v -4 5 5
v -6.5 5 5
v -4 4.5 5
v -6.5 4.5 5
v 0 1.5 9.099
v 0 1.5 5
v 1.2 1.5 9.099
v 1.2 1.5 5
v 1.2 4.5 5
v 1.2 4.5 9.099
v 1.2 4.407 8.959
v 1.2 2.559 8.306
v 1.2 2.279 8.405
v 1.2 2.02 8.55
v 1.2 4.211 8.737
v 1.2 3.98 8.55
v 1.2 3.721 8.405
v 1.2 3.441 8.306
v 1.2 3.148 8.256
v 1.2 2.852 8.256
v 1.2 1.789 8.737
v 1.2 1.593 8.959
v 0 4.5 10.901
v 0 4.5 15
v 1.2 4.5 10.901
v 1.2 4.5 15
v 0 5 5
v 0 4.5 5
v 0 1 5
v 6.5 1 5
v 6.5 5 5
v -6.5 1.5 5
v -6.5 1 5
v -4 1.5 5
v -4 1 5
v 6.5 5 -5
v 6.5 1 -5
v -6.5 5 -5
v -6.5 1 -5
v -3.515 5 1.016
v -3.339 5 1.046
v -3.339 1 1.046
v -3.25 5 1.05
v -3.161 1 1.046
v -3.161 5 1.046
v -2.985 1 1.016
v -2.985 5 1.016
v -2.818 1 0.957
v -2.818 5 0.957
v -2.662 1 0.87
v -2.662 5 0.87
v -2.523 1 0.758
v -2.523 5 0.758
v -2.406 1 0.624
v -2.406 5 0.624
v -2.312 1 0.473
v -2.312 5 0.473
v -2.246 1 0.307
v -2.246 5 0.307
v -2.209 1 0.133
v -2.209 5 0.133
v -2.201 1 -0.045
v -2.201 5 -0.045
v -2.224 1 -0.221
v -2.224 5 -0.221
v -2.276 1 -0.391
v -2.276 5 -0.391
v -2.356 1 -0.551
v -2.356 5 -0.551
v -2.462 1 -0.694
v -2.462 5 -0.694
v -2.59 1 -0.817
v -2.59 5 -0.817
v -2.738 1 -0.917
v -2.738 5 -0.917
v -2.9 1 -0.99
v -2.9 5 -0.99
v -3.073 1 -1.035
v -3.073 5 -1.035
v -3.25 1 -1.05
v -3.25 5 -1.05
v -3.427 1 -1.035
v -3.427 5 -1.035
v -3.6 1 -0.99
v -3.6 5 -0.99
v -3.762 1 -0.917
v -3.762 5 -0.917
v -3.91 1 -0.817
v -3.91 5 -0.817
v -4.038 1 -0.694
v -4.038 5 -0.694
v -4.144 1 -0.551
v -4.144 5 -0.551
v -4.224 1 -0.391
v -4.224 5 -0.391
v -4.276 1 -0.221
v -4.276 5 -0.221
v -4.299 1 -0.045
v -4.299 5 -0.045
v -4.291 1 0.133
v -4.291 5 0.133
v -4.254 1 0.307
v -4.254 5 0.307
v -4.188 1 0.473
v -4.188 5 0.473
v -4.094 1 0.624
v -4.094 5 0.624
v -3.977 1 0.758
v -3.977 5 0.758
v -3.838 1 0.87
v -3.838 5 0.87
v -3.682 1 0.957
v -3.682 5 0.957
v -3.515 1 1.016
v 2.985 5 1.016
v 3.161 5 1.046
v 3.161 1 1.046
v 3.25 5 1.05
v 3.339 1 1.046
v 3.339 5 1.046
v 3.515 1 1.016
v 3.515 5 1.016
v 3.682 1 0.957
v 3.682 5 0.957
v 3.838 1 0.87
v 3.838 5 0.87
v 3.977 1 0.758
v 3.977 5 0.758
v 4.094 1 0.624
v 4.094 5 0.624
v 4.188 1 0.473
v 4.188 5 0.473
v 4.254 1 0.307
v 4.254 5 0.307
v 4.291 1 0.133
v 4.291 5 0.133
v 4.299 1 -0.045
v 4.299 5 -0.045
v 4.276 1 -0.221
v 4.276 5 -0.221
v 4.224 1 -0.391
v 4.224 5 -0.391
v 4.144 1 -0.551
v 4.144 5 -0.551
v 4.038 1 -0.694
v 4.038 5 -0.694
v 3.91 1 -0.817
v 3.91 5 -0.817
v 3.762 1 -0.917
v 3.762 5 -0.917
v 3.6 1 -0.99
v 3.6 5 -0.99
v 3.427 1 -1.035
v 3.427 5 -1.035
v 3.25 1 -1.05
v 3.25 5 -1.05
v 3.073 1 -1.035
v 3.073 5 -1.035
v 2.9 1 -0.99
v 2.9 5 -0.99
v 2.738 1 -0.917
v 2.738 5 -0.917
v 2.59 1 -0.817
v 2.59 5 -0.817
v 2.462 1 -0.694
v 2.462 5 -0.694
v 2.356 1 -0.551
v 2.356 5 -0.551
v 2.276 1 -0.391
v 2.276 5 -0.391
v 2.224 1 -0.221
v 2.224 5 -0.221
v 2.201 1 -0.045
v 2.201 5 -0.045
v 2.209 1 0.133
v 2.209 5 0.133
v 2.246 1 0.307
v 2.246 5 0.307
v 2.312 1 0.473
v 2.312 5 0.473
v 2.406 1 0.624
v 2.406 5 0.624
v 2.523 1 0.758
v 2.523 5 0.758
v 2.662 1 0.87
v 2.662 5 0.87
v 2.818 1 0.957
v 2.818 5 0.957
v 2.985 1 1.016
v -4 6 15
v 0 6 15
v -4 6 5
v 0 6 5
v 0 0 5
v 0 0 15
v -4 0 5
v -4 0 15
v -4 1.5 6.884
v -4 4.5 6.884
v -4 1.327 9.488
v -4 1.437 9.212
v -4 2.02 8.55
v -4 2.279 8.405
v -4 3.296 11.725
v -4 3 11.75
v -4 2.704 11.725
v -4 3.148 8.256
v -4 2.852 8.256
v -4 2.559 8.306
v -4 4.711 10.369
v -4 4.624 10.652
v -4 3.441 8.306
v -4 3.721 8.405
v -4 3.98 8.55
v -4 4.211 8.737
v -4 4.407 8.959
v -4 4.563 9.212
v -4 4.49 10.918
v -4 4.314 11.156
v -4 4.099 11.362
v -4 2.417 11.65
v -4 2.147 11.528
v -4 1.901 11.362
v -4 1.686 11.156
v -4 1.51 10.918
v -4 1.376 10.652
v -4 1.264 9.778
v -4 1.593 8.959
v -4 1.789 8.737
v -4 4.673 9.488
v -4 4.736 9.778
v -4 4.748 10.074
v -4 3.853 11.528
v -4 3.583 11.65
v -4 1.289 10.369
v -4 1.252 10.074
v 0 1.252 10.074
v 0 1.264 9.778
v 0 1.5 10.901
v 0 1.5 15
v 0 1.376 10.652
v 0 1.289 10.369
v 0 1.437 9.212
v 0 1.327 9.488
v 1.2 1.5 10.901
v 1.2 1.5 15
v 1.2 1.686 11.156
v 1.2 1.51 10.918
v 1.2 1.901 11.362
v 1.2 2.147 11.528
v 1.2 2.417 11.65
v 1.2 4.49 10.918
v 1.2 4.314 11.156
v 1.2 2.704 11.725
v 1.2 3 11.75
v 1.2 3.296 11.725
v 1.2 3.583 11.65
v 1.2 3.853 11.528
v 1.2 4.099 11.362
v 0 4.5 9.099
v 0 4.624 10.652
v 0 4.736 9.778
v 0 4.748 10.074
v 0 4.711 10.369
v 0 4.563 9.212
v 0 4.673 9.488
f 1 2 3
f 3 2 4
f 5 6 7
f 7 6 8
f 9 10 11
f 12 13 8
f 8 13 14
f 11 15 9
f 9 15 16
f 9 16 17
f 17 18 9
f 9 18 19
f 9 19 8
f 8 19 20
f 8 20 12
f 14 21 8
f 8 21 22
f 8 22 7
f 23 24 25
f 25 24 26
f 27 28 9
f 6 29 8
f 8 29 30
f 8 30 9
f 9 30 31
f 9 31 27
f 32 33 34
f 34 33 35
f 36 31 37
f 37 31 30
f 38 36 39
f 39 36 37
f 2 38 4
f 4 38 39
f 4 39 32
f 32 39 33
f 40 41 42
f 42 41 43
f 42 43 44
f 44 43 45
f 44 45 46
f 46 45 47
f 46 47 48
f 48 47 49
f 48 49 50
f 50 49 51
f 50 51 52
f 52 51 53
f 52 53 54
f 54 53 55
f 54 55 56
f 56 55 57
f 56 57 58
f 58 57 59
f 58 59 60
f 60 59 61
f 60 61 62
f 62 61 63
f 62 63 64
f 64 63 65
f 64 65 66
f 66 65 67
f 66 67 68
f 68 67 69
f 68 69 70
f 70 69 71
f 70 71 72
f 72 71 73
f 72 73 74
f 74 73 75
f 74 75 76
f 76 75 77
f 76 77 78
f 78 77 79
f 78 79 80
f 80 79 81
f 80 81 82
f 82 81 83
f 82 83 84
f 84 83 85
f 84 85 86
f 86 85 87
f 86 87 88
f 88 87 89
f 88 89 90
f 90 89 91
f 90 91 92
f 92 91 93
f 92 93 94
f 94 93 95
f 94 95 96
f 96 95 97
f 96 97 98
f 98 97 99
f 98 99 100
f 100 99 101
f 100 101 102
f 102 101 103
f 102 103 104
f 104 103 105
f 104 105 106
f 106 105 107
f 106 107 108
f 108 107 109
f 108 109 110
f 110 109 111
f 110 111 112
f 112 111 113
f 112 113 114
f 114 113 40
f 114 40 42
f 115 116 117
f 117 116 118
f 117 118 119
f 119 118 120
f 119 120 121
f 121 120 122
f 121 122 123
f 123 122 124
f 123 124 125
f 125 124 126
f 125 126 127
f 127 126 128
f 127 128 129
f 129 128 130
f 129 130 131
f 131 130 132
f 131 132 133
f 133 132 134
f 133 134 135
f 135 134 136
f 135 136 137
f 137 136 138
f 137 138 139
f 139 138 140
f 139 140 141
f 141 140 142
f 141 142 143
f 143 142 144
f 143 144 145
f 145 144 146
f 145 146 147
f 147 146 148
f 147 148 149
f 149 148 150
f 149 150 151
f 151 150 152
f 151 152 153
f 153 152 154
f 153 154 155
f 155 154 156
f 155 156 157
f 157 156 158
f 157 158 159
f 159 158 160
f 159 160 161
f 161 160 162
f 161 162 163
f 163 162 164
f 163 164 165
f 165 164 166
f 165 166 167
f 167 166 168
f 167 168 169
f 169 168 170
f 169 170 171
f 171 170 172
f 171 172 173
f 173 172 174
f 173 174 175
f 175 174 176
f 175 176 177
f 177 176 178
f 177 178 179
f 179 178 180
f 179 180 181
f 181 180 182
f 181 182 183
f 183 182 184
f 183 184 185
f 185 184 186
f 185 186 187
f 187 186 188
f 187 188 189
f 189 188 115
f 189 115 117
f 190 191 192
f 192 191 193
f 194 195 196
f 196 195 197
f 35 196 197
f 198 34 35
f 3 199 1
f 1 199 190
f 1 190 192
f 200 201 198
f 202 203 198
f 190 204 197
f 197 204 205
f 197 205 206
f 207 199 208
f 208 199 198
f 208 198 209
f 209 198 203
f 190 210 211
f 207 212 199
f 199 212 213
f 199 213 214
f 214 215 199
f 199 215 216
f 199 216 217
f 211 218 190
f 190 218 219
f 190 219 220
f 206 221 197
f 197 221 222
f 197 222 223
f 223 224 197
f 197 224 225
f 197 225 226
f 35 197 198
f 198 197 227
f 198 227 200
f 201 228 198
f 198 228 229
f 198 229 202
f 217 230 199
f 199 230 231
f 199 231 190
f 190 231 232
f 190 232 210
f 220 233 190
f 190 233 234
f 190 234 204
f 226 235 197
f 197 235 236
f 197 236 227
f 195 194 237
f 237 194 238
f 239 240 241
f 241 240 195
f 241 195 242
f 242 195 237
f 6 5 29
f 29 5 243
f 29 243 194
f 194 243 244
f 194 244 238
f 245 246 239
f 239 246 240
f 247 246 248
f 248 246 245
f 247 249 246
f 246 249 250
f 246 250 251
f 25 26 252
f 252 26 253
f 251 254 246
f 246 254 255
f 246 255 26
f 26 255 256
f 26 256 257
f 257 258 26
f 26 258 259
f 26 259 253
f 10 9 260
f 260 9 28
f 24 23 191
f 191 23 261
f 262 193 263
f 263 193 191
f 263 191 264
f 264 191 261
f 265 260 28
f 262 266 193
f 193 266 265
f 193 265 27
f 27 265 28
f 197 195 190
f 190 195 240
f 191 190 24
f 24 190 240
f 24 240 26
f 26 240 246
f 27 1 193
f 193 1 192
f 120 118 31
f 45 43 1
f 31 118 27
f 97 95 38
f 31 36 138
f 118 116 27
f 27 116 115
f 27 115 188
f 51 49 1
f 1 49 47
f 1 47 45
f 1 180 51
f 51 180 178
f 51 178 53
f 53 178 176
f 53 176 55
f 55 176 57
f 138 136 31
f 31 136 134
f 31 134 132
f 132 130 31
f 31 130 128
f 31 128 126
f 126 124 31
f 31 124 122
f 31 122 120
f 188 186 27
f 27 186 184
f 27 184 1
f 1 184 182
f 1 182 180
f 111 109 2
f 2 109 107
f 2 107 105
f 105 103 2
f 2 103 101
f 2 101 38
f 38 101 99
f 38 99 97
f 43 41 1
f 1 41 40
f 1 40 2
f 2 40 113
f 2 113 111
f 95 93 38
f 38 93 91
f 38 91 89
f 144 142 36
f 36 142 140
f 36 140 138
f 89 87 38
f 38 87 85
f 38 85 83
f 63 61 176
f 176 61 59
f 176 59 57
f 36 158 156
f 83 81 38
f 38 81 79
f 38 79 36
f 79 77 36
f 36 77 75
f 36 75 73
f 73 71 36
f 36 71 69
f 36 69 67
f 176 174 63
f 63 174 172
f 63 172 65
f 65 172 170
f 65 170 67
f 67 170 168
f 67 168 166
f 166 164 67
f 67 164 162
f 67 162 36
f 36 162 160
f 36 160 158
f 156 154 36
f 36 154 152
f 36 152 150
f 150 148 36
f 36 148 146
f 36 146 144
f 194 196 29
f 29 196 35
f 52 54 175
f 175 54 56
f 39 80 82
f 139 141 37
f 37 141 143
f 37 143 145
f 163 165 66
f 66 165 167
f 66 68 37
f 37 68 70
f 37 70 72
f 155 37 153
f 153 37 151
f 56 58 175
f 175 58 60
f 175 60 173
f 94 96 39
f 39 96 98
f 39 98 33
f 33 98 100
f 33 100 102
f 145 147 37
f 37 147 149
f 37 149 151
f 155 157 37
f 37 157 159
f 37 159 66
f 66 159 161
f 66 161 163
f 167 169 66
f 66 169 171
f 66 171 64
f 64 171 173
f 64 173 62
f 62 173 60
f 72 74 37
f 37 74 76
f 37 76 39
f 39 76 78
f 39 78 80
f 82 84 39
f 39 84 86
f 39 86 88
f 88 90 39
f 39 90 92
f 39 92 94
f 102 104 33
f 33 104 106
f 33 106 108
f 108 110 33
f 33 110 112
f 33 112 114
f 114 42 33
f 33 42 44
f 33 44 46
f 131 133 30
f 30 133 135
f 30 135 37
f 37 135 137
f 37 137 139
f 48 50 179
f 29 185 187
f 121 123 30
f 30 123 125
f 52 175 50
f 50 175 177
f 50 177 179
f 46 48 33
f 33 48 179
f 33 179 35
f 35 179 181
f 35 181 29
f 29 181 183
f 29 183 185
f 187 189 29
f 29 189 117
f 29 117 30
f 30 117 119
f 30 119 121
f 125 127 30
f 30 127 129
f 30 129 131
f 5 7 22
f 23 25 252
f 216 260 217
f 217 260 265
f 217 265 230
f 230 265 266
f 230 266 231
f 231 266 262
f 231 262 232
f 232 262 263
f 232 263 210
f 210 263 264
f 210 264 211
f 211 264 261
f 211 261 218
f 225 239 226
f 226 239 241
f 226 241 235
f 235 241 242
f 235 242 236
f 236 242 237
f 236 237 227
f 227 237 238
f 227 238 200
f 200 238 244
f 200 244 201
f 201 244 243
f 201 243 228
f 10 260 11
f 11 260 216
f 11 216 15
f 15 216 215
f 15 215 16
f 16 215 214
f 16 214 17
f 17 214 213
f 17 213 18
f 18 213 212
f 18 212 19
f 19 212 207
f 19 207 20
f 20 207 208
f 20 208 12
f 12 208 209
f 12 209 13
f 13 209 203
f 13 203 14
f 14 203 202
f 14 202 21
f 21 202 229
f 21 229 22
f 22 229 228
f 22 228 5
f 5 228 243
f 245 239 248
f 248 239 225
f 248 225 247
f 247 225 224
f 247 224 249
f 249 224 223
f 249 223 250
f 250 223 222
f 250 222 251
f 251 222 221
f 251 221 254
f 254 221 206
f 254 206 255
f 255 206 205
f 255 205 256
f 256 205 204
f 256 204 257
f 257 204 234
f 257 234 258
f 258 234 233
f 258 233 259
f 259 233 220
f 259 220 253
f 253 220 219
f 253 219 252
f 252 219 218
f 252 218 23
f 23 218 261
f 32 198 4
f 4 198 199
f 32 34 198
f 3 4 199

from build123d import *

# Parameters (mm, degrees)
SKETCH_2_W          = 13
SKETCH_2_H          = 10
SKETCH_2_R          = 1.05
EXTRUDE_1_DEPTH     = 6
EXTRUDE_2_DEPTH     = 10
SKETCH_4_W          = 13
SKETCH_4_H          = 10
CUT_EXTRUDE_1_DEPTH = 1
SKETCH_5_W          = 13
SKETCH_5_H          = 10
CUT_EXTRUDE_2_DEPTH = 1
SKETCH_6_R          = 1.75
CUT_EXTRUDE_3_DEPTH = 20.267848868
RIB_1_REACH         = 18.956
SKETCH_7_WALL_W     = 39.23500661
SKETCH_7_WALL_H     = 3


with BuildPart() as part:
    # 草图2 → 凸台-拉伸1 (new body)
    with BuildSketch(Plane(origin=(0, 0, 0), x_dir=(1, 0, 0), z_dir=(0, 1, 0))):
        Rectangle(SKETCH_2_W, SKETCH_2_H)
        with Locations(Location((-3.25, 0, 0), (0, 0, 270))):
            Circle(SKETCH_2_R, mode=Mode.SUBTRACT)
        with Locations(Location((3.25, 0, 0), (0, 0, 270))):
            Circle(SKETCH_2_R, mode=Mode.SUBTRACT)
    extrude(amount=EXTRUDE_1_DEPTH)

    # 草图3 → 凸台-拉伸2 (add)
    with BuildSketch(Plane.XY.offset(5)):
        Polygon((0, 6), (0, 4.5), (1.2, 4.5), (1.2, 1.5), (0, 1.5), (0, 0), (-4, 0), (-4, 6), align=None)
    extrude(amount=EXTRUDE_2_DEPTH)

    # 草图4 → 切除-拉伸1 (cut)
    with BuildSketch(Plane(origin=(0, 6, 0), x_dir=(1, 0, 0), z_dir=(0, 1, 0))):
        Rectangle(SKETCH_4_W, SKETCH_4_H)
    extrude(amount=-CUT_EXTRUDE_1_DEPTH, mode=Mode.SUBTRACT)

    # 草图5 → 切除-拉伸2 (cut)
    with BuildSketch(Plane.XZ):
        Rectangle(SKETCH_5_W, SKETCH_5_H)
    extrude(amount=-CUT_EXTRUDE_2_DEPTH, mode=Mode.SUBTRACT)

    # 草图6 → 切除-拉伸3 (cut, through all)
    with BuildSketch(Plane.ZY.offset(4)):
        with Locations((10, 3)):
            Circle(SKETCH_6_R)
    extrude(amount=-CUT_EXTRUDE_3_DEPTH, mode=Mode.SUBTRACT)

    # 草图7 wall → 筋1 (add, up to next)
    with BuildSketch(Plane(origin=(-5.172907339, 1.5, 6), x_dir=(0.798645937054, 0, 0.601801185798), z_dir=(-0.601801185798, 0, 0.798645937054)), mode=Mode.PRIVATE) as rib_1_sk1:
        with Locations((0, 1.5)):
            Rectangle(SKETCH_7_WALL_W, SKETCH_7_WALL_H)
    rib_1_tool1 = extrude(rib_1_sk1.sketch, amount=-RIB_1_REACH, mode=Mode.PRIVATE) - part.part
    add(rib_1_tool1.solids().sort_by_distance((-5.172907339, 1.5, 6))[0])


solid = part.part
